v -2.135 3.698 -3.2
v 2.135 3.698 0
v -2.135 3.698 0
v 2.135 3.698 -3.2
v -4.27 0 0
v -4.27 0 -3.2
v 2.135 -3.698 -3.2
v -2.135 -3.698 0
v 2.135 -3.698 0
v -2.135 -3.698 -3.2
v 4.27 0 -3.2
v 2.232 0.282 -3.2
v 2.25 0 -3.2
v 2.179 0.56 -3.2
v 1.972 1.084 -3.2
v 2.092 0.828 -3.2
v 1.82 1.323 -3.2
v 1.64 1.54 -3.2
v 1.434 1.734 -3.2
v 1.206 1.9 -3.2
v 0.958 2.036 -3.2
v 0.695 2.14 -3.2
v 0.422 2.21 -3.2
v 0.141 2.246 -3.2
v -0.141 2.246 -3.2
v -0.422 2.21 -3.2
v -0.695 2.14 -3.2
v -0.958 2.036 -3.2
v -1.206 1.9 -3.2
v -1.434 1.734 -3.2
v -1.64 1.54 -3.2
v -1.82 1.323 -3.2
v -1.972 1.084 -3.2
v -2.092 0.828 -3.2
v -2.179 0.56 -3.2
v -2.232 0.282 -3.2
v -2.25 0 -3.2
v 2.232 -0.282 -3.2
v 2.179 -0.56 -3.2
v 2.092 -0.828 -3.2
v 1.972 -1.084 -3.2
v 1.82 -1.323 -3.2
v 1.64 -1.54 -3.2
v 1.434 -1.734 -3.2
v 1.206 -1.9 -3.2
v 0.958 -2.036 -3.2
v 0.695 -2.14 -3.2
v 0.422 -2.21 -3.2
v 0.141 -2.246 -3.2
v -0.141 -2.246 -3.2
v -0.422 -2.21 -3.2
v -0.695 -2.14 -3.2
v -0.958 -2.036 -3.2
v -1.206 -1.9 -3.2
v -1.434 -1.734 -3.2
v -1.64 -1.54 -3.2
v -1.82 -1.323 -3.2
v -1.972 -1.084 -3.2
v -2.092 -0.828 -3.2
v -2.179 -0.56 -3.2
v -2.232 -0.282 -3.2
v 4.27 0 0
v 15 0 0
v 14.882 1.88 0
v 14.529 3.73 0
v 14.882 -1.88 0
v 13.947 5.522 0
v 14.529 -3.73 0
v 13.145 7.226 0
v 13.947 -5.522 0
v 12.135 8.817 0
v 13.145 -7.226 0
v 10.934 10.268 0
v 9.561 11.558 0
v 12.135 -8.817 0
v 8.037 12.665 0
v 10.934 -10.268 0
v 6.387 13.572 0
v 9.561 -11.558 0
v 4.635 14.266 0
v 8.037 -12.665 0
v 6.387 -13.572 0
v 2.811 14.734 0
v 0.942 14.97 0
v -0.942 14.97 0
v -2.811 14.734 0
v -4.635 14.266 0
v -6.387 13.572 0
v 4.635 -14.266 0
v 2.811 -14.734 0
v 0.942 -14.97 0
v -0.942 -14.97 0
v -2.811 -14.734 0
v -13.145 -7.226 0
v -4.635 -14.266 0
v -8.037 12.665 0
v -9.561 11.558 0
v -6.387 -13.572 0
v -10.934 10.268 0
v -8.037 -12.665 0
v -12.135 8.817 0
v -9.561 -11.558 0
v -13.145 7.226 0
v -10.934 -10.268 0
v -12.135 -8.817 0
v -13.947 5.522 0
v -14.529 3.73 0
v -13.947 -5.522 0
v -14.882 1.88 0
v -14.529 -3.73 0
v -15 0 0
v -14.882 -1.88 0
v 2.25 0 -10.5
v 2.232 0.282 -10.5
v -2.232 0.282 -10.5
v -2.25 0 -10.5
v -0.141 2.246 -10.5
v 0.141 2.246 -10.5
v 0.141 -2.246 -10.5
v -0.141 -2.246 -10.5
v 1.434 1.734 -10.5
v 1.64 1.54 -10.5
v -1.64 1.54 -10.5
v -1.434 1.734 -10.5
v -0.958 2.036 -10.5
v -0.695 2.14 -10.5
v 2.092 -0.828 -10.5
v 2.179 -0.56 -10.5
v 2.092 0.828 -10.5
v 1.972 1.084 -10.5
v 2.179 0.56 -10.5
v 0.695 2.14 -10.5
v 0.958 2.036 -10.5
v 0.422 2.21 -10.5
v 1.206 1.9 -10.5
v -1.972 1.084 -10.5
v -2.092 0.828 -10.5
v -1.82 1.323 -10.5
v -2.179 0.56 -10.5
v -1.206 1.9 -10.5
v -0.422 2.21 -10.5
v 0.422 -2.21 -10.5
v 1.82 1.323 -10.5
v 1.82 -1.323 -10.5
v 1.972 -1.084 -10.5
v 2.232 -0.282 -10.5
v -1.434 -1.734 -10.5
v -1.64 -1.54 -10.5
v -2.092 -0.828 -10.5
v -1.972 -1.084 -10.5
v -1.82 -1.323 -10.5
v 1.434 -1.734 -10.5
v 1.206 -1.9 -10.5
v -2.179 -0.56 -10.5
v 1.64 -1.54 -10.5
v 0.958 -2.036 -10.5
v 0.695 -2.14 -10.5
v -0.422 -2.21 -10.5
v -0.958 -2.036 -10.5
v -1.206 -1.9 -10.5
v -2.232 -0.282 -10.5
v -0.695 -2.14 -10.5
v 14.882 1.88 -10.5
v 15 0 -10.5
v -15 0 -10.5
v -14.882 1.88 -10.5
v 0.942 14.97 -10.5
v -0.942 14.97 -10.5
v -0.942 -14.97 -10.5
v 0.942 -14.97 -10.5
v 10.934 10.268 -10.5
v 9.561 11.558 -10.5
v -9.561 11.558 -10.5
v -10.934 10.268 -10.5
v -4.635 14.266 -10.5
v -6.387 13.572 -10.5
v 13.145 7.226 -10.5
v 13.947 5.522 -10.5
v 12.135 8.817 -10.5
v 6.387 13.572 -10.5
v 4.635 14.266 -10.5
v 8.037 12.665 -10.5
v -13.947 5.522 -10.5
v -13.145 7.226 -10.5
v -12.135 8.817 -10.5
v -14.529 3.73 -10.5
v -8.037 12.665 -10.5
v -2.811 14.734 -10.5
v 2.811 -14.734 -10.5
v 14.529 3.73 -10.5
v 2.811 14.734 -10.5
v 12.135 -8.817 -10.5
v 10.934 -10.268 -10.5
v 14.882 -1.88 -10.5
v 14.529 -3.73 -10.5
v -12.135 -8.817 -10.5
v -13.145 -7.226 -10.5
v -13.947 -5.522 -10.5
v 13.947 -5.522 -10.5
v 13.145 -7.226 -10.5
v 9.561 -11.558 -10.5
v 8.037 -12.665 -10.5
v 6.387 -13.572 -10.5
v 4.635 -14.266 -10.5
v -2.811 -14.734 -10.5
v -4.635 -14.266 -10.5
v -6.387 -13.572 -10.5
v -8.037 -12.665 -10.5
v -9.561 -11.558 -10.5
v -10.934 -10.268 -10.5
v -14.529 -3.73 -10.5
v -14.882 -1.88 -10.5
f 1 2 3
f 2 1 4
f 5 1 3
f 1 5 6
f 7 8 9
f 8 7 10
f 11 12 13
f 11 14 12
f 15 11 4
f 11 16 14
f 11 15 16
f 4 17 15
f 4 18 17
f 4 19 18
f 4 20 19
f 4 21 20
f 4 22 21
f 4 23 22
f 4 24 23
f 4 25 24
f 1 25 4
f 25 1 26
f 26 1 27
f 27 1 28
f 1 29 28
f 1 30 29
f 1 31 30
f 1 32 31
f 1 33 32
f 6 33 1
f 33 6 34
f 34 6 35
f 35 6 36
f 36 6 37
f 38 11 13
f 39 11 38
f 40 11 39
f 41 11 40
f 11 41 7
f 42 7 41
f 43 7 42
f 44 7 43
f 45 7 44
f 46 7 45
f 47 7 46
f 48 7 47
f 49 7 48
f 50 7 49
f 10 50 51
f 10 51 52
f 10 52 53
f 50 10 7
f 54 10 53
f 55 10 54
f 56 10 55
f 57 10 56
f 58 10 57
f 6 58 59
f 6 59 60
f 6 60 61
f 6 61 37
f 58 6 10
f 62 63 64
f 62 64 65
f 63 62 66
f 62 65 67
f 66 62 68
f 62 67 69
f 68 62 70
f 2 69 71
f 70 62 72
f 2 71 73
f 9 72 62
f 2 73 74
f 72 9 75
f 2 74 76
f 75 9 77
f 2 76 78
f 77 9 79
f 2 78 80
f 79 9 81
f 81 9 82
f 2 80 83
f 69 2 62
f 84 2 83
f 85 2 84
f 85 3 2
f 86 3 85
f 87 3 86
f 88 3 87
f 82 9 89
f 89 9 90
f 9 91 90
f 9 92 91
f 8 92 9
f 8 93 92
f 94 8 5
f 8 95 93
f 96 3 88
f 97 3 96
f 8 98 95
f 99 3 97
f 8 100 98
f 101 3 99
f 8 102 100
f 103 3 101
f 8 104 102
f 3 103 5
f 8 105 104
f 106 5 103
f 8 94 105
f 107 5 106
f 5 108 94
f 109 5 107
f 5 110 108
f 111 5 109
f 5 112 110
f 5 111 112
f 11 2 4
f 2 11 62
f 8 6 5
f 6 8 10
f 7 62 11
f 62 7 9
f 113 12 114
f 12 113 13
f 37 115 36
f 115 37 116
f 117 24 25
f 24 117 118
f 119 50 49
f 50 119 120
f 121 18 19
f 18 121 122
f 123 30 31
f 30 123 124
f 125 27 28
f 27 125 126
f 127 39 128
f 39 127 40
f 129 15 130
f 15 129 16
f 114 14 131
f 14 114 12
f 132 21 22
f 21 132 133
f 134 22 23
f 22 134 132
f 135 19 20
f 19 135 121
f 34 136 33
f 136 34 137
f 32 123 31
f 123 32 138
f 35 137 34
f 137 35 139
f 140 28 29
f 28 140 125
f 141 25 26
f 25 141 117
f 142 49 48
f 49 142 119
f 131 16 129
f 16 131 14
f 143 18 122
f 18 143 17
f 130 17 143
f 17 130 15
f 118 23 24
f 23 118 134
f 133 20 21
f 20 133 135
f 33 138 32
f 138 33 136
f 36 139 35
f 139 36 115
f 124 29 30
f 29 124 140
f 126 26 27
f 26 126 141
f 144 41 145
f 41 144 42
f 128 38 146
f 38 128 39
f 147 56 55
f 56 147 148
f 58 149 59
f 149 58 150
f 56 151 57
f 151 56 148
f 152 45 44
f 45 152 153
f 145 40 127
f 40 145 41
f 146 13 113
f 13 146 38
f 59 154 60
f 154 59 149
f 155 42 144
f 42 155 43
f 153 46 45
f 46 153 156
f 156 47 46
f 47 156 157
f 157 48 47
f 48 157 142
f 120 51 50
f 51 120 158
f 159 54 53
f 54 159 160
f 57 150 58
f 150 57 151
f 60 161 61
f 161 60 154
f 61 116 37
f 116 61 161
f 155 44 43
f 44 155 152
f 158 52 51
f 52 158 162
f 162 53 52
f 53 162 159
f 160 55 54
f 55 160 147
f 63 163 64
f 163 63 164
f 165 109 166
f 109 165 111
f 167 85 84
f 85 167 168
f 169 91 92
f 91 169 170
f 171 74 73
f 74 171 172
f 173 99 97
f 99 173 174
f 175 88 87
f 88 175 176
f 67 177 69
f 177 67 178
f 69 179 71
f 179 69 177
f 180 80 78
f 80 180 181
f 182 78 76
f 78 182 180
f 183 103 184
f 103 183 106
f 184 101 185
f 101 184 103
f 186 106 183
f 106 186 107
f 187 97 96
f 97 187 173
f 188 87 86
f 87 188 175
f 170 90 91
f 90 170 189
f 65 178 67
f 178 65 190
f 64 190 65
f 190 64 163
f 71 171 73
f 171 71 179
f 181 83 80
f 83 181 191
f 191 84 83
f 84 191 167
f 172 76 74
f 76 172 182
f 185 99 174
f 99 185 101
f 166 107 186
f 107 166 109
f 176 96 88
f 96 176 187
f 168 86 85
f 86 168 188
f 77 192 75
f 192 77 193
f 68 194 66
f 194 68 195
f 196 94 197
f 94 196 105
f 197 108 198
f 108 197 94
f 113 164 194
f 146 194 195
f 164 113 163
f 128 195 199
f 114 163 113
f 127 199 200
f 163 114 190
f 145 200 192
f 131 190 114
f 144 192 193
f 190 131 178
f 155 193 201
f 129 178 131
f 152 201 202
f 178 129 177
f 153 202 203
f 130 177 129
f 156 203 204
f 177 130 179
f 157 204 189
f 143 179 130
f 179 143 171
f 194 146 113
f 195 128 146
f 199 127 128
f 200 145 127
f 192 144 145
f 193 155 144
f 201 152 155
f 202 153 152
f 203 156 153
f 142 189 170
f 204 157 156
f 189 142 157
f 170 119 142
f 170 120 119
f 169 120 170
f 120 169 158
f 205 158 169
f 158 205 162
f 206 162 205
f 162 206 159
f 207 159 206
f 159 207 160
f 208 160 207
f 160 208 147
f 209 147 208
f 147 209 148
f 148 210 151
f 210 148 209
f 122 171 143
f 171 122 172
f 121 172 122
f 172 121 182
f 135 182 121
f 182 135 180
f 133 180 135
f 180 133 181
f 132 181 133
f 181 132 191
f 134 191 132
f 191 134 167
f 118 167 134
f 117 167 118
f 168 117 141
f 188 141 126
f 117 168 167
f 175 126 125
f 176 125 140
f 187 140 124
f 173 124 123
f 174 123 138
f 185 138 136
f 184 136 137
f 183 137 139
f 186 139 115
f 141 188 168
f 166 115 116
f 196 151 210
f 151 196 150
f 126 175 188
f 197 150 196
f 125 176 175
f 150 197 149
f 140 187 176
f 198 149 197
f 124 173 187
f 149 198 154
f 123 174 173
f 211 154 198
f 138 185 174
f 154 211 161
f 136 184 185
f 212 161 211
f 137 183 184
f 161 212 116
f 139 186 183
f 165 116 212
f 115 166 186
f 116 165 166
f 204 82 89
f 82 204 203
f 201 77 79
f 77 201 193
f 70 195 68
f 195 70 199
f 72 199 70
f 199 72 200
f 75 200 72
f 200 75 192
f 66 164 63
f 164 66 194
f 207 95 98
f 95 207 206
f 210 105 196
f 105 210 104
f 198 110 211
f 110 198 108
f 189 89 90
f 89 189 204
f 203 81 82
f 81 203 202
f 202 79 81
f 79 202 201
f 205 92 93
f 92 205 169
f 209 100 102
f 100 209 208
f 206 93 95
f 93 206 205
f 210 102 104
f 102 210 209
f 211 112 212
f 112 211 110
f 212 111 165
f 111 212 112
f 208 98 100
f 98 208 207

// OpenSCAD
$fn = 50;


difference() {
	union() {
		translate(v = [0, 0, -10.5000000000]) {
			cylinder(h = 10.5000000000, r = 15.0000000000);
		}
	}
	union() {
		translate(v = [0, 0, 0]) {
			rotate(a = [0, 0, 0]) {
				difference() {
					union() {
						translate(v = [0, 0, -3.2000000000]) {
							#linear_extrude(height = 3.2000000000) {
								polygon(points = [[4.2698000000, 0.0000000000], [2.1349000000, 3.6977552691], [-2.1349000000, 3.6977552691], [-4.2698000000, 0.0000000000], [-2.1349000000, -3.6977552691], [2.1349000000, -3.6977552691]]);
							}
						}
					}
					union();
				}
			}
		}
		#translate(v = [0, 0, -100.0000000000]) {
			cylinder(h = 200, r = 2.2500000000);
		}
	}
}
